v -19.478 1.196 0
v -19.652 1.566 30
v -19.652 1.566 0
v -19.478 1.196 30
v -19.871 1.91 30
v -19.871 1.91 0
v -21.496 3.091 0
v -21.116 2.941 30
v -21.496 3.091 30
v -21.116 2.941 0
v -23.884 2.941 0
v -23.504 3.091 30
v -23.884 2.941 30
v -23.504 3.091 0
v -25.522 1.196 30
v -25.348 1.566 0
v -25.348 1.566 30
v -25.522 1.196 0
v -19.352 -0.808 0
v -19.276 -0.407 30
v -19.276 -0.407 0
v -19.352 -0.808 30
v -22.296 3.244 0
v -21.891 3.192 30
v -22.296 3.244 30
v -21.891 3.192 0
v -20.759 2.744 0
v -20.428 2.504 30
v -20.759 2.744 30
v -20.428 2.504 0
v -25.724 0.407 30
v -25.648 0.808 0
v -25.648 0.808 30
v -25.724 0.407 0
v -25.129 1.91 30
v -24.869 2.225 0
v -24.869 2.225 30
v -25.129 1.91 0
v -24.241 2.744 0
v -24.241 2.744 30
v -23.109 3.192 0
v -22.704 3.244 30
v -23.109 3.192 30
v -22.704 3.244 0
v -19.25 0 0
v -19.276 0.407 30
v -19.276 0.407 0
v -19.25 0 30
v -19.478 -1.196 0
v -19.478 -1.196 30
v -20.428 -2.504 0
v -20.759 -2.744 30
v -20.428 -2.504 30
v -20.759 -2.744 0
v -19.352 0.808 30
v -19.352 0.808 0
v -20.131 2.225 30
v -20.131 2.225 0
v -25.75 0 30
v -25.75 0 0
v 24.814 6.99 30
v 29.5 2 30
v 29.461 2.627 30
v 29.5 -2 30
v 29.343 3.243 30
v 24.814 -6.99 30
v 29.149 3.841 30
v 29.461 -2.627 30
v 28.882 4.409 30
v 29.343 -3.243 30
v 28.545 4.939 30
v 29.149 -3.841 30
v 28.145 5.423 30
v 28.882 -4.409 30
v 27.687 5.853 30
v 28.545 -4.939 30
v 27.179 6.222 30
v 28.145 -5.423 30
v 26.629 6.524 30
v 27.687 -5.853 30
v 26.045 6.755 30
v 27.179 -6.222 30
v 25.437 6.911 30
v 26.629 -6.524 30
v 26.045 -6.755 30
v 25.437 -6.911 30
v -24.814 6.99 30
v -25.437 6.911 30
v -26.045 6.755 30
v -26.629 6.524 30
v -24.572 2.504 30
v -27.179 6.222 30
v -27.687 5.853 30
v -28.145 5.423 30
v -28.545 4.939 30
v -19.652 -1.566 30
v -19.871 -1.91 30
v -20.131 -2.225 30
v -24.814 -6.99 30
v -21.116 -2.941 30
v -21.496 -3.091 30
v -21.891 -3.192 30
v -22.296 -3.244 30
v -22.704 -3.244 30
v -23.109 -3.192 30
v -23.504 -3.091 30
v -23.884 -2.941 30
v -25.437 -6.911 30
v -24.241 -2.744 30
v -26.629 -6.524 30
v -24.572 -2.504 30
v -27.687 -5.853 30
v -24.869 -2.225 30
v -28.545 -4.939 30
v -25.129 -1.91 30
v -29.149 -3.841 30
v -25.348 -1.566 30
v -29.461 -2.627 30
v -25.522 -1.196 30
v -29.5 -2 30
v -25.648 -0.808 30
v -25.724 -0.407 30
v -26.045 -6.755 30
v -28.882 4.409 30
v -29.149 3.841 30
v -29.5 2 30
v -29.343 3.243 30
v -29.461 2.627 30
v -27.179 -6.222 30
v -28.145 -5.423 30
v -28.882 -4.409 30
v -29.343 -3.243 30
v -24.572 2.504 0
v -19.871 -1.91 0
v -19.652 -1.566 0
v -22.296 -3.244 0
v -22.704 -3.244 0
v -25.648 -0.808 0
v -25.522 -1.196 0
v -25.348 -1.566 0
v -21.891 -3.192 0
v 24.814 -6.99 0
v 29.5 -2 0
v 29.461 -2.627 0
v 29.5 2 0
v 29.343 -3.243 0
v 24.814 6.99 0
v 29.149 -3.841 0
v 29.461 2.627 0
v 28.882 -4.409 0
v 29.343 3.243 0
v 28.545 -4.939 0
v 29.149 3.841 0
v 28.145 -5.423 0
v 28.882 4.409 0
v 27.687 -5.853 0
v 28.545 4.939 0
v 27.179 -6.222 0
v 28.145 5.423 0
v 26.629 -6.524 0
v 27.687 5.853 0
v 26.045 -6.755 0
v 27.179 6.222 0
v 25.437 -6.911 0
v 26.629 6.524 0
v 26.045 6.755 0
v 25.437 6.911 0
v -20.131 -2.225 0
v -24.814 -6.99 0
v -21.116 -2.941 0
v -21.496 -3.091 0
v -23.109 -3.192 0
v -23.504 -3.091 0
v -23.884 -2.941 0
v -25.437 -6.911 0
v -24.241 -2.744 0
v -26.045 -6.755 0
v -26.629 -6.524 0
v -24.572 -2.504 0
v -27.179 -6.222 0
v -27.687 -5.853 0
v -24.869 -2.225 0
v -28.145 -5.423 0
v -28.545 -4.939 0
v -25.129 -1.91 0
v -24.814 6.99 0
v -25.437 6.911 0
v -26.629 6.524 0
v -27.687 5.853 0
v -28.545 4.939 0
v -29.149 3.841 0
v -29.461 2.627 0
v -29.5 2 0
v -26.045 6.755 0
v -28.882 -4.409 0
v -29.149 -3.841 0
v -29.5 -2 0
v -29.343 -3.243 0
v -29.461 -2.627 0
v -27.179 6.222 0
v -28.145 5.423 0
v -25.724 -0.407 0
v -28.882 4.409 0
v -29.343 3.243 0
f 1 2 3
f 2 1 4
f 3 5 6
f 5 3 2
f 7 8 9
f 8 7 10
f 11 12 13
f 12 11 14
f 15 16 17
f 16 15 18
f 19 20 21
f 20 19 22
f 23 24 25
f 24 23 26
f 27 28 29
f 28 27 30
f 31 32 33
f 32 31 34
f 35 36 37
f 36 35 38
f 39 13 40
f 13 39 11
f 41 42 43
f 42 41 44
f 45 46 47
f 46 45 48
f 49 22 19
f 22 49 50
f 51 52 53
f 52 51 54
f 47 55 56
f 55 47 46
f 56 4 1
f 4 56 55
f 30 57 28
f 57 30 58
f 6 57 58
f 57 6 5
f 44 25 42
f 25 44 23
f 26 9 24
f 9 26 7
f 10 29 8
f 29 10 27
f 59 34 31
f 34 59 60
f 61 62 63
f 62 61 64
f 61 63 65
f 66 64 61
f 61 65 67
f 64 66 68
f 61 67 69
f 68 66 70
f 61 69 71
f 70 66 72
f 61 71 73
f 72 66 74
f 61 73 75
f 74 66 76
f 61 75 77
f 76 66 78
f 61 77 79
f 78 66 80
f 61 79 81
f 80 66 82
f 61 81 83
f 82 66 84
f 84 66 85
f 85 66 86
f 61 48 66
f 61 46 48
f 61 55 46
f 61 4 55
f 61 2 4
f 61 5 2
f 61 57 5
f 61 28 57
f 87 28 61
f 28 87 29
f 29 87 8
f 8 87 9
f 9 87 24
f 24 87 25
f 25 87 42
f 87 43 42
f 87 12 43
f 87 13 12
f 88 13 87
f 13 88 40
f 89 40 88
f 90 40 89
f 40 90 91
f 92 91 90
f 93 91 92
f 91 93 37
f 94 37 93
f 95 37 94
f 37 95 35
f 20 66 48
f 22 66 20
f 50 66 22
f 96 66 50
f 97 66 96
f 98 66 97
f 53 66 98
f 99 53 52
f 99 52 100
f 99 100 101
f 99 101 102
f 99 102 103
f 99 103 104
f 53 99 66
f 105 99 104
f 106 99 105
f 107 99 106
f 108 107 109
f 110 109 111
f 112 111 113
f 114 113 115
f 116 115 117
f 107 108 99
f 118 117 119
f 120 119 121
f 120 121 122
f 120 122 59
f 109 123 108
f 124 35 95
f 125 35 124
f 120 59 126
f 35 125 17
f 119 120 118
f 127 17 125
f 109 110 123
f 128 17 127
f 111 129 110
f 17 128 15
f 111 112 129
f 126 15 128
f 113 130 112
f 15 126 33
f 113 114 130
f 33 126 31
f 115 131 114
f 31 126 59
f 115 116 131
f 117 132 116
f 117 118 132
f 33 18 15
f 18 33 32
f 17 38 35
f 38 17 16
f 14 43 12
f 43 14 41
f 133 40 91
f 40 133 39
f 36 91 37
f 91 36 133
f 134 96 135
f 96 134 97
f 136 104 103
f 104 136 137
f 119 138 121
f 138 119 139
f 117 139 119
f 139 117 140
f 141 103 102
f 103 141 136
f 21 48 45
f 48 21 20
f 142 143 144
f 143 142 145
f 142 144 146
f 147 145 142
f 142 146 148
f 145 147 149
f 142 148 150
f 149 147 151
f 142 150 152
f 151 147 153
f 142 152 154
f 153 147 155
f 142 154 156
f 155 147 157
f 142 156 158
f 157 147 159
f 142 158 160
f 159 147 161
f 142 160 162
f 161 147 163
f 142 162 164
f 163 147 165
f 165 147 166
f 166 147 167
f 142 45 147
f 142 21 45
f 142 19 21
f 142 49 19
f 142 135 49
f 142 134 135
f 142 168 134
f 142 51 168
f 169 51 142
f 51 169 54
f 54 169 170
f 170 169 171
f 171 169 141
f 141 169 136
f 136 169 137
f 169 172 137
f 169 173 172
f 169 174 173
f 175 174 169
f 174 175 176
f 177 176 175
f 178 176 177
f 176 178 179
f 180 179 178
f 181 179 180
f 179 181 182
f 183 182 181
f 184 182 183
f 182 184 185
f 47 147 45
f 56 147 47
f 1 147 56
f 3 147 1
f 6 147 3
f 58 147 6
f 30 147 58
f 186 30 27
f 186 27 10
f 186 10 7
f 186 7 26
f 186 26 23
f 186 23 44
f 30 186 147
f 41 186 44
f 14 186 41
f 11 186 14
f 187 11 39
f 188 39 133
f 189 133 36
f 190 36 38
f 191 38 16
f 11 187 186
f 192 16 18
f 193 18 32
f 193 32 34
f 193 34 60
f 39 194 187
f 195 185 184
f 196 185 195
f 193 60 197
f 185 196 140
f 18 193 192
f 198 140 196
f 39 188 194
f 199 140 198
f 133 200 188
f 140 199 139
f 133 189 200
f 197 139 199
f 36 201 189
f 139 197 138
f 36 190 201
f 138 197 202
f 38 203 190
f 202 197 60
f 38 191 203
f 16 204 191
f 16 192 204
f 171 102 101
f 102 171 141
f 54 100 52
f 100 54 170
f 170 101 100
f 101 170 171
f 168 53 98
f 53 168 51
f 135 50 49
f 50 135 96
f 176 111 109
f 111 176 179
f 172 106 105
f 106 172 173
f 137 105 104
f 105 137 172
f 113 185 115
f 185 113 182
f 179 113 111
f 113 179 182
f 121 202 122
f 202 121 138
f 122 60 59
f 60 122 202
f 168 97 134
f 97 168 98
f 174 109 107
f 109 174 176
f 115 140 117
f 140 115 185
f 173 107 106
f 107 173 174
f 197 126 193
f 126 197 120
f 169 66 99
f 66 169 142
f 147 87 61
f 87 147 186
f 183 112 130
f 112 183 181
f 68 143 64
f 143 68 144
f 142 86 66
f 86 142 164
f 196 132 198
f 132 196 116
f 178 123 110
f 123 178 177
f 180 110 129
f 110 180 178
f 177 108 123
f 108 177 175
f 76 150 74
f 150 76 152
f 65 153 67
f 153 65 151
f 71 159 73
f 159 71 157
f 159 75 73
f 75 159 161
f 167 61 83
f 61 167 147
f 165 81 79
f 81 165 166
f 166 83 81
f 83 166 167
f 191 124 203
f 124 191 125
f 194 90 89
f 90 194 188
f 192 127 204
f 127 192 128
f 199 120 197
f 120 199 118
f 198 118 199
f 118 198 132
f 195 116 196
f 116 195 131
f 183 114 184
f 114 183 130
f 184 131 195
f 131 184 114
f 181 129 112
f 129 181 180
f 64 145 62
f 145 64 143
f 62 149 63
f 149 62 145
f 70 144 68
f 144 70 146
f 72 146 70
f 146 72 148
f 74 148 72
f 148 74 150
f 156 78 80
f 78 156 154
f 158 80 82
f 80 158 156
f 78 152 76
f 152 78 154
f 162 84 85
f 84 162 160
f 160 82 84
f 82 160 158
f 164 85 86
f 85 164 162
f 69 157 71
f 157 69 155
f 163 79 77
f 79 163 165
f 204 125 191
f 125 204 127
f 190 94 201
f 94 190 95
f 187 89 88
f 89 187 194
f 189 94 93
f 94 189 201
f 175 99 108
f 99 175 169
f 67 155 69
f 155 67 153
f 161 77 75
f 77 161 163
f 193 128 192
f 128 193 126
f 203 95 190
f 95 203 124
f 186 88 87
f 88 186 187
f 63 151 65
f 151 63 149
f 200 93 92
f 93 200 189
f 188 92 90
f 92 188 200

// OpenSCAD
$fn = 50;


difference() {
	union() {
		hull() {
			translate(v = [-24.5000000000, 2.0000000000, 0]) {
				cylinder(h = 30, r = 5);
			}
			translate(v = [24.5000000000, 2.0000000000, 0]) {
				cylinder(h = 30, r = 5);
			}
			translate(v = [-24.5000000000, -2.0000000000, 0]) {
				cylinder(h = 30, r = 5);
			}
			translate(v = [24.5000000000, -2.0000000000, 0]) {
				cylinder(h = 30, r = 5);
			}
		}
	}
	union() {
		translate(v = [-22.5000000000, 0.0000000000, 0]) {
			cylinder(h = 30, r = 3.2500000000);
		}
		translate(v = [-22.5000000000, 0.0000000000, 0]) {
			cylinder(h = 30, r = 1.8000000000);
		}
		translate(v = [-22.5000000000, 0.0000000000, 0]) {
			cylinder(h = 30, r = 1.8000000000);
		}
		translate(v = [-22.5000000000, 0.0000000000, 0]) {
			cylinder(h = 30, r = 1.8000000000);
		}
	}
}
